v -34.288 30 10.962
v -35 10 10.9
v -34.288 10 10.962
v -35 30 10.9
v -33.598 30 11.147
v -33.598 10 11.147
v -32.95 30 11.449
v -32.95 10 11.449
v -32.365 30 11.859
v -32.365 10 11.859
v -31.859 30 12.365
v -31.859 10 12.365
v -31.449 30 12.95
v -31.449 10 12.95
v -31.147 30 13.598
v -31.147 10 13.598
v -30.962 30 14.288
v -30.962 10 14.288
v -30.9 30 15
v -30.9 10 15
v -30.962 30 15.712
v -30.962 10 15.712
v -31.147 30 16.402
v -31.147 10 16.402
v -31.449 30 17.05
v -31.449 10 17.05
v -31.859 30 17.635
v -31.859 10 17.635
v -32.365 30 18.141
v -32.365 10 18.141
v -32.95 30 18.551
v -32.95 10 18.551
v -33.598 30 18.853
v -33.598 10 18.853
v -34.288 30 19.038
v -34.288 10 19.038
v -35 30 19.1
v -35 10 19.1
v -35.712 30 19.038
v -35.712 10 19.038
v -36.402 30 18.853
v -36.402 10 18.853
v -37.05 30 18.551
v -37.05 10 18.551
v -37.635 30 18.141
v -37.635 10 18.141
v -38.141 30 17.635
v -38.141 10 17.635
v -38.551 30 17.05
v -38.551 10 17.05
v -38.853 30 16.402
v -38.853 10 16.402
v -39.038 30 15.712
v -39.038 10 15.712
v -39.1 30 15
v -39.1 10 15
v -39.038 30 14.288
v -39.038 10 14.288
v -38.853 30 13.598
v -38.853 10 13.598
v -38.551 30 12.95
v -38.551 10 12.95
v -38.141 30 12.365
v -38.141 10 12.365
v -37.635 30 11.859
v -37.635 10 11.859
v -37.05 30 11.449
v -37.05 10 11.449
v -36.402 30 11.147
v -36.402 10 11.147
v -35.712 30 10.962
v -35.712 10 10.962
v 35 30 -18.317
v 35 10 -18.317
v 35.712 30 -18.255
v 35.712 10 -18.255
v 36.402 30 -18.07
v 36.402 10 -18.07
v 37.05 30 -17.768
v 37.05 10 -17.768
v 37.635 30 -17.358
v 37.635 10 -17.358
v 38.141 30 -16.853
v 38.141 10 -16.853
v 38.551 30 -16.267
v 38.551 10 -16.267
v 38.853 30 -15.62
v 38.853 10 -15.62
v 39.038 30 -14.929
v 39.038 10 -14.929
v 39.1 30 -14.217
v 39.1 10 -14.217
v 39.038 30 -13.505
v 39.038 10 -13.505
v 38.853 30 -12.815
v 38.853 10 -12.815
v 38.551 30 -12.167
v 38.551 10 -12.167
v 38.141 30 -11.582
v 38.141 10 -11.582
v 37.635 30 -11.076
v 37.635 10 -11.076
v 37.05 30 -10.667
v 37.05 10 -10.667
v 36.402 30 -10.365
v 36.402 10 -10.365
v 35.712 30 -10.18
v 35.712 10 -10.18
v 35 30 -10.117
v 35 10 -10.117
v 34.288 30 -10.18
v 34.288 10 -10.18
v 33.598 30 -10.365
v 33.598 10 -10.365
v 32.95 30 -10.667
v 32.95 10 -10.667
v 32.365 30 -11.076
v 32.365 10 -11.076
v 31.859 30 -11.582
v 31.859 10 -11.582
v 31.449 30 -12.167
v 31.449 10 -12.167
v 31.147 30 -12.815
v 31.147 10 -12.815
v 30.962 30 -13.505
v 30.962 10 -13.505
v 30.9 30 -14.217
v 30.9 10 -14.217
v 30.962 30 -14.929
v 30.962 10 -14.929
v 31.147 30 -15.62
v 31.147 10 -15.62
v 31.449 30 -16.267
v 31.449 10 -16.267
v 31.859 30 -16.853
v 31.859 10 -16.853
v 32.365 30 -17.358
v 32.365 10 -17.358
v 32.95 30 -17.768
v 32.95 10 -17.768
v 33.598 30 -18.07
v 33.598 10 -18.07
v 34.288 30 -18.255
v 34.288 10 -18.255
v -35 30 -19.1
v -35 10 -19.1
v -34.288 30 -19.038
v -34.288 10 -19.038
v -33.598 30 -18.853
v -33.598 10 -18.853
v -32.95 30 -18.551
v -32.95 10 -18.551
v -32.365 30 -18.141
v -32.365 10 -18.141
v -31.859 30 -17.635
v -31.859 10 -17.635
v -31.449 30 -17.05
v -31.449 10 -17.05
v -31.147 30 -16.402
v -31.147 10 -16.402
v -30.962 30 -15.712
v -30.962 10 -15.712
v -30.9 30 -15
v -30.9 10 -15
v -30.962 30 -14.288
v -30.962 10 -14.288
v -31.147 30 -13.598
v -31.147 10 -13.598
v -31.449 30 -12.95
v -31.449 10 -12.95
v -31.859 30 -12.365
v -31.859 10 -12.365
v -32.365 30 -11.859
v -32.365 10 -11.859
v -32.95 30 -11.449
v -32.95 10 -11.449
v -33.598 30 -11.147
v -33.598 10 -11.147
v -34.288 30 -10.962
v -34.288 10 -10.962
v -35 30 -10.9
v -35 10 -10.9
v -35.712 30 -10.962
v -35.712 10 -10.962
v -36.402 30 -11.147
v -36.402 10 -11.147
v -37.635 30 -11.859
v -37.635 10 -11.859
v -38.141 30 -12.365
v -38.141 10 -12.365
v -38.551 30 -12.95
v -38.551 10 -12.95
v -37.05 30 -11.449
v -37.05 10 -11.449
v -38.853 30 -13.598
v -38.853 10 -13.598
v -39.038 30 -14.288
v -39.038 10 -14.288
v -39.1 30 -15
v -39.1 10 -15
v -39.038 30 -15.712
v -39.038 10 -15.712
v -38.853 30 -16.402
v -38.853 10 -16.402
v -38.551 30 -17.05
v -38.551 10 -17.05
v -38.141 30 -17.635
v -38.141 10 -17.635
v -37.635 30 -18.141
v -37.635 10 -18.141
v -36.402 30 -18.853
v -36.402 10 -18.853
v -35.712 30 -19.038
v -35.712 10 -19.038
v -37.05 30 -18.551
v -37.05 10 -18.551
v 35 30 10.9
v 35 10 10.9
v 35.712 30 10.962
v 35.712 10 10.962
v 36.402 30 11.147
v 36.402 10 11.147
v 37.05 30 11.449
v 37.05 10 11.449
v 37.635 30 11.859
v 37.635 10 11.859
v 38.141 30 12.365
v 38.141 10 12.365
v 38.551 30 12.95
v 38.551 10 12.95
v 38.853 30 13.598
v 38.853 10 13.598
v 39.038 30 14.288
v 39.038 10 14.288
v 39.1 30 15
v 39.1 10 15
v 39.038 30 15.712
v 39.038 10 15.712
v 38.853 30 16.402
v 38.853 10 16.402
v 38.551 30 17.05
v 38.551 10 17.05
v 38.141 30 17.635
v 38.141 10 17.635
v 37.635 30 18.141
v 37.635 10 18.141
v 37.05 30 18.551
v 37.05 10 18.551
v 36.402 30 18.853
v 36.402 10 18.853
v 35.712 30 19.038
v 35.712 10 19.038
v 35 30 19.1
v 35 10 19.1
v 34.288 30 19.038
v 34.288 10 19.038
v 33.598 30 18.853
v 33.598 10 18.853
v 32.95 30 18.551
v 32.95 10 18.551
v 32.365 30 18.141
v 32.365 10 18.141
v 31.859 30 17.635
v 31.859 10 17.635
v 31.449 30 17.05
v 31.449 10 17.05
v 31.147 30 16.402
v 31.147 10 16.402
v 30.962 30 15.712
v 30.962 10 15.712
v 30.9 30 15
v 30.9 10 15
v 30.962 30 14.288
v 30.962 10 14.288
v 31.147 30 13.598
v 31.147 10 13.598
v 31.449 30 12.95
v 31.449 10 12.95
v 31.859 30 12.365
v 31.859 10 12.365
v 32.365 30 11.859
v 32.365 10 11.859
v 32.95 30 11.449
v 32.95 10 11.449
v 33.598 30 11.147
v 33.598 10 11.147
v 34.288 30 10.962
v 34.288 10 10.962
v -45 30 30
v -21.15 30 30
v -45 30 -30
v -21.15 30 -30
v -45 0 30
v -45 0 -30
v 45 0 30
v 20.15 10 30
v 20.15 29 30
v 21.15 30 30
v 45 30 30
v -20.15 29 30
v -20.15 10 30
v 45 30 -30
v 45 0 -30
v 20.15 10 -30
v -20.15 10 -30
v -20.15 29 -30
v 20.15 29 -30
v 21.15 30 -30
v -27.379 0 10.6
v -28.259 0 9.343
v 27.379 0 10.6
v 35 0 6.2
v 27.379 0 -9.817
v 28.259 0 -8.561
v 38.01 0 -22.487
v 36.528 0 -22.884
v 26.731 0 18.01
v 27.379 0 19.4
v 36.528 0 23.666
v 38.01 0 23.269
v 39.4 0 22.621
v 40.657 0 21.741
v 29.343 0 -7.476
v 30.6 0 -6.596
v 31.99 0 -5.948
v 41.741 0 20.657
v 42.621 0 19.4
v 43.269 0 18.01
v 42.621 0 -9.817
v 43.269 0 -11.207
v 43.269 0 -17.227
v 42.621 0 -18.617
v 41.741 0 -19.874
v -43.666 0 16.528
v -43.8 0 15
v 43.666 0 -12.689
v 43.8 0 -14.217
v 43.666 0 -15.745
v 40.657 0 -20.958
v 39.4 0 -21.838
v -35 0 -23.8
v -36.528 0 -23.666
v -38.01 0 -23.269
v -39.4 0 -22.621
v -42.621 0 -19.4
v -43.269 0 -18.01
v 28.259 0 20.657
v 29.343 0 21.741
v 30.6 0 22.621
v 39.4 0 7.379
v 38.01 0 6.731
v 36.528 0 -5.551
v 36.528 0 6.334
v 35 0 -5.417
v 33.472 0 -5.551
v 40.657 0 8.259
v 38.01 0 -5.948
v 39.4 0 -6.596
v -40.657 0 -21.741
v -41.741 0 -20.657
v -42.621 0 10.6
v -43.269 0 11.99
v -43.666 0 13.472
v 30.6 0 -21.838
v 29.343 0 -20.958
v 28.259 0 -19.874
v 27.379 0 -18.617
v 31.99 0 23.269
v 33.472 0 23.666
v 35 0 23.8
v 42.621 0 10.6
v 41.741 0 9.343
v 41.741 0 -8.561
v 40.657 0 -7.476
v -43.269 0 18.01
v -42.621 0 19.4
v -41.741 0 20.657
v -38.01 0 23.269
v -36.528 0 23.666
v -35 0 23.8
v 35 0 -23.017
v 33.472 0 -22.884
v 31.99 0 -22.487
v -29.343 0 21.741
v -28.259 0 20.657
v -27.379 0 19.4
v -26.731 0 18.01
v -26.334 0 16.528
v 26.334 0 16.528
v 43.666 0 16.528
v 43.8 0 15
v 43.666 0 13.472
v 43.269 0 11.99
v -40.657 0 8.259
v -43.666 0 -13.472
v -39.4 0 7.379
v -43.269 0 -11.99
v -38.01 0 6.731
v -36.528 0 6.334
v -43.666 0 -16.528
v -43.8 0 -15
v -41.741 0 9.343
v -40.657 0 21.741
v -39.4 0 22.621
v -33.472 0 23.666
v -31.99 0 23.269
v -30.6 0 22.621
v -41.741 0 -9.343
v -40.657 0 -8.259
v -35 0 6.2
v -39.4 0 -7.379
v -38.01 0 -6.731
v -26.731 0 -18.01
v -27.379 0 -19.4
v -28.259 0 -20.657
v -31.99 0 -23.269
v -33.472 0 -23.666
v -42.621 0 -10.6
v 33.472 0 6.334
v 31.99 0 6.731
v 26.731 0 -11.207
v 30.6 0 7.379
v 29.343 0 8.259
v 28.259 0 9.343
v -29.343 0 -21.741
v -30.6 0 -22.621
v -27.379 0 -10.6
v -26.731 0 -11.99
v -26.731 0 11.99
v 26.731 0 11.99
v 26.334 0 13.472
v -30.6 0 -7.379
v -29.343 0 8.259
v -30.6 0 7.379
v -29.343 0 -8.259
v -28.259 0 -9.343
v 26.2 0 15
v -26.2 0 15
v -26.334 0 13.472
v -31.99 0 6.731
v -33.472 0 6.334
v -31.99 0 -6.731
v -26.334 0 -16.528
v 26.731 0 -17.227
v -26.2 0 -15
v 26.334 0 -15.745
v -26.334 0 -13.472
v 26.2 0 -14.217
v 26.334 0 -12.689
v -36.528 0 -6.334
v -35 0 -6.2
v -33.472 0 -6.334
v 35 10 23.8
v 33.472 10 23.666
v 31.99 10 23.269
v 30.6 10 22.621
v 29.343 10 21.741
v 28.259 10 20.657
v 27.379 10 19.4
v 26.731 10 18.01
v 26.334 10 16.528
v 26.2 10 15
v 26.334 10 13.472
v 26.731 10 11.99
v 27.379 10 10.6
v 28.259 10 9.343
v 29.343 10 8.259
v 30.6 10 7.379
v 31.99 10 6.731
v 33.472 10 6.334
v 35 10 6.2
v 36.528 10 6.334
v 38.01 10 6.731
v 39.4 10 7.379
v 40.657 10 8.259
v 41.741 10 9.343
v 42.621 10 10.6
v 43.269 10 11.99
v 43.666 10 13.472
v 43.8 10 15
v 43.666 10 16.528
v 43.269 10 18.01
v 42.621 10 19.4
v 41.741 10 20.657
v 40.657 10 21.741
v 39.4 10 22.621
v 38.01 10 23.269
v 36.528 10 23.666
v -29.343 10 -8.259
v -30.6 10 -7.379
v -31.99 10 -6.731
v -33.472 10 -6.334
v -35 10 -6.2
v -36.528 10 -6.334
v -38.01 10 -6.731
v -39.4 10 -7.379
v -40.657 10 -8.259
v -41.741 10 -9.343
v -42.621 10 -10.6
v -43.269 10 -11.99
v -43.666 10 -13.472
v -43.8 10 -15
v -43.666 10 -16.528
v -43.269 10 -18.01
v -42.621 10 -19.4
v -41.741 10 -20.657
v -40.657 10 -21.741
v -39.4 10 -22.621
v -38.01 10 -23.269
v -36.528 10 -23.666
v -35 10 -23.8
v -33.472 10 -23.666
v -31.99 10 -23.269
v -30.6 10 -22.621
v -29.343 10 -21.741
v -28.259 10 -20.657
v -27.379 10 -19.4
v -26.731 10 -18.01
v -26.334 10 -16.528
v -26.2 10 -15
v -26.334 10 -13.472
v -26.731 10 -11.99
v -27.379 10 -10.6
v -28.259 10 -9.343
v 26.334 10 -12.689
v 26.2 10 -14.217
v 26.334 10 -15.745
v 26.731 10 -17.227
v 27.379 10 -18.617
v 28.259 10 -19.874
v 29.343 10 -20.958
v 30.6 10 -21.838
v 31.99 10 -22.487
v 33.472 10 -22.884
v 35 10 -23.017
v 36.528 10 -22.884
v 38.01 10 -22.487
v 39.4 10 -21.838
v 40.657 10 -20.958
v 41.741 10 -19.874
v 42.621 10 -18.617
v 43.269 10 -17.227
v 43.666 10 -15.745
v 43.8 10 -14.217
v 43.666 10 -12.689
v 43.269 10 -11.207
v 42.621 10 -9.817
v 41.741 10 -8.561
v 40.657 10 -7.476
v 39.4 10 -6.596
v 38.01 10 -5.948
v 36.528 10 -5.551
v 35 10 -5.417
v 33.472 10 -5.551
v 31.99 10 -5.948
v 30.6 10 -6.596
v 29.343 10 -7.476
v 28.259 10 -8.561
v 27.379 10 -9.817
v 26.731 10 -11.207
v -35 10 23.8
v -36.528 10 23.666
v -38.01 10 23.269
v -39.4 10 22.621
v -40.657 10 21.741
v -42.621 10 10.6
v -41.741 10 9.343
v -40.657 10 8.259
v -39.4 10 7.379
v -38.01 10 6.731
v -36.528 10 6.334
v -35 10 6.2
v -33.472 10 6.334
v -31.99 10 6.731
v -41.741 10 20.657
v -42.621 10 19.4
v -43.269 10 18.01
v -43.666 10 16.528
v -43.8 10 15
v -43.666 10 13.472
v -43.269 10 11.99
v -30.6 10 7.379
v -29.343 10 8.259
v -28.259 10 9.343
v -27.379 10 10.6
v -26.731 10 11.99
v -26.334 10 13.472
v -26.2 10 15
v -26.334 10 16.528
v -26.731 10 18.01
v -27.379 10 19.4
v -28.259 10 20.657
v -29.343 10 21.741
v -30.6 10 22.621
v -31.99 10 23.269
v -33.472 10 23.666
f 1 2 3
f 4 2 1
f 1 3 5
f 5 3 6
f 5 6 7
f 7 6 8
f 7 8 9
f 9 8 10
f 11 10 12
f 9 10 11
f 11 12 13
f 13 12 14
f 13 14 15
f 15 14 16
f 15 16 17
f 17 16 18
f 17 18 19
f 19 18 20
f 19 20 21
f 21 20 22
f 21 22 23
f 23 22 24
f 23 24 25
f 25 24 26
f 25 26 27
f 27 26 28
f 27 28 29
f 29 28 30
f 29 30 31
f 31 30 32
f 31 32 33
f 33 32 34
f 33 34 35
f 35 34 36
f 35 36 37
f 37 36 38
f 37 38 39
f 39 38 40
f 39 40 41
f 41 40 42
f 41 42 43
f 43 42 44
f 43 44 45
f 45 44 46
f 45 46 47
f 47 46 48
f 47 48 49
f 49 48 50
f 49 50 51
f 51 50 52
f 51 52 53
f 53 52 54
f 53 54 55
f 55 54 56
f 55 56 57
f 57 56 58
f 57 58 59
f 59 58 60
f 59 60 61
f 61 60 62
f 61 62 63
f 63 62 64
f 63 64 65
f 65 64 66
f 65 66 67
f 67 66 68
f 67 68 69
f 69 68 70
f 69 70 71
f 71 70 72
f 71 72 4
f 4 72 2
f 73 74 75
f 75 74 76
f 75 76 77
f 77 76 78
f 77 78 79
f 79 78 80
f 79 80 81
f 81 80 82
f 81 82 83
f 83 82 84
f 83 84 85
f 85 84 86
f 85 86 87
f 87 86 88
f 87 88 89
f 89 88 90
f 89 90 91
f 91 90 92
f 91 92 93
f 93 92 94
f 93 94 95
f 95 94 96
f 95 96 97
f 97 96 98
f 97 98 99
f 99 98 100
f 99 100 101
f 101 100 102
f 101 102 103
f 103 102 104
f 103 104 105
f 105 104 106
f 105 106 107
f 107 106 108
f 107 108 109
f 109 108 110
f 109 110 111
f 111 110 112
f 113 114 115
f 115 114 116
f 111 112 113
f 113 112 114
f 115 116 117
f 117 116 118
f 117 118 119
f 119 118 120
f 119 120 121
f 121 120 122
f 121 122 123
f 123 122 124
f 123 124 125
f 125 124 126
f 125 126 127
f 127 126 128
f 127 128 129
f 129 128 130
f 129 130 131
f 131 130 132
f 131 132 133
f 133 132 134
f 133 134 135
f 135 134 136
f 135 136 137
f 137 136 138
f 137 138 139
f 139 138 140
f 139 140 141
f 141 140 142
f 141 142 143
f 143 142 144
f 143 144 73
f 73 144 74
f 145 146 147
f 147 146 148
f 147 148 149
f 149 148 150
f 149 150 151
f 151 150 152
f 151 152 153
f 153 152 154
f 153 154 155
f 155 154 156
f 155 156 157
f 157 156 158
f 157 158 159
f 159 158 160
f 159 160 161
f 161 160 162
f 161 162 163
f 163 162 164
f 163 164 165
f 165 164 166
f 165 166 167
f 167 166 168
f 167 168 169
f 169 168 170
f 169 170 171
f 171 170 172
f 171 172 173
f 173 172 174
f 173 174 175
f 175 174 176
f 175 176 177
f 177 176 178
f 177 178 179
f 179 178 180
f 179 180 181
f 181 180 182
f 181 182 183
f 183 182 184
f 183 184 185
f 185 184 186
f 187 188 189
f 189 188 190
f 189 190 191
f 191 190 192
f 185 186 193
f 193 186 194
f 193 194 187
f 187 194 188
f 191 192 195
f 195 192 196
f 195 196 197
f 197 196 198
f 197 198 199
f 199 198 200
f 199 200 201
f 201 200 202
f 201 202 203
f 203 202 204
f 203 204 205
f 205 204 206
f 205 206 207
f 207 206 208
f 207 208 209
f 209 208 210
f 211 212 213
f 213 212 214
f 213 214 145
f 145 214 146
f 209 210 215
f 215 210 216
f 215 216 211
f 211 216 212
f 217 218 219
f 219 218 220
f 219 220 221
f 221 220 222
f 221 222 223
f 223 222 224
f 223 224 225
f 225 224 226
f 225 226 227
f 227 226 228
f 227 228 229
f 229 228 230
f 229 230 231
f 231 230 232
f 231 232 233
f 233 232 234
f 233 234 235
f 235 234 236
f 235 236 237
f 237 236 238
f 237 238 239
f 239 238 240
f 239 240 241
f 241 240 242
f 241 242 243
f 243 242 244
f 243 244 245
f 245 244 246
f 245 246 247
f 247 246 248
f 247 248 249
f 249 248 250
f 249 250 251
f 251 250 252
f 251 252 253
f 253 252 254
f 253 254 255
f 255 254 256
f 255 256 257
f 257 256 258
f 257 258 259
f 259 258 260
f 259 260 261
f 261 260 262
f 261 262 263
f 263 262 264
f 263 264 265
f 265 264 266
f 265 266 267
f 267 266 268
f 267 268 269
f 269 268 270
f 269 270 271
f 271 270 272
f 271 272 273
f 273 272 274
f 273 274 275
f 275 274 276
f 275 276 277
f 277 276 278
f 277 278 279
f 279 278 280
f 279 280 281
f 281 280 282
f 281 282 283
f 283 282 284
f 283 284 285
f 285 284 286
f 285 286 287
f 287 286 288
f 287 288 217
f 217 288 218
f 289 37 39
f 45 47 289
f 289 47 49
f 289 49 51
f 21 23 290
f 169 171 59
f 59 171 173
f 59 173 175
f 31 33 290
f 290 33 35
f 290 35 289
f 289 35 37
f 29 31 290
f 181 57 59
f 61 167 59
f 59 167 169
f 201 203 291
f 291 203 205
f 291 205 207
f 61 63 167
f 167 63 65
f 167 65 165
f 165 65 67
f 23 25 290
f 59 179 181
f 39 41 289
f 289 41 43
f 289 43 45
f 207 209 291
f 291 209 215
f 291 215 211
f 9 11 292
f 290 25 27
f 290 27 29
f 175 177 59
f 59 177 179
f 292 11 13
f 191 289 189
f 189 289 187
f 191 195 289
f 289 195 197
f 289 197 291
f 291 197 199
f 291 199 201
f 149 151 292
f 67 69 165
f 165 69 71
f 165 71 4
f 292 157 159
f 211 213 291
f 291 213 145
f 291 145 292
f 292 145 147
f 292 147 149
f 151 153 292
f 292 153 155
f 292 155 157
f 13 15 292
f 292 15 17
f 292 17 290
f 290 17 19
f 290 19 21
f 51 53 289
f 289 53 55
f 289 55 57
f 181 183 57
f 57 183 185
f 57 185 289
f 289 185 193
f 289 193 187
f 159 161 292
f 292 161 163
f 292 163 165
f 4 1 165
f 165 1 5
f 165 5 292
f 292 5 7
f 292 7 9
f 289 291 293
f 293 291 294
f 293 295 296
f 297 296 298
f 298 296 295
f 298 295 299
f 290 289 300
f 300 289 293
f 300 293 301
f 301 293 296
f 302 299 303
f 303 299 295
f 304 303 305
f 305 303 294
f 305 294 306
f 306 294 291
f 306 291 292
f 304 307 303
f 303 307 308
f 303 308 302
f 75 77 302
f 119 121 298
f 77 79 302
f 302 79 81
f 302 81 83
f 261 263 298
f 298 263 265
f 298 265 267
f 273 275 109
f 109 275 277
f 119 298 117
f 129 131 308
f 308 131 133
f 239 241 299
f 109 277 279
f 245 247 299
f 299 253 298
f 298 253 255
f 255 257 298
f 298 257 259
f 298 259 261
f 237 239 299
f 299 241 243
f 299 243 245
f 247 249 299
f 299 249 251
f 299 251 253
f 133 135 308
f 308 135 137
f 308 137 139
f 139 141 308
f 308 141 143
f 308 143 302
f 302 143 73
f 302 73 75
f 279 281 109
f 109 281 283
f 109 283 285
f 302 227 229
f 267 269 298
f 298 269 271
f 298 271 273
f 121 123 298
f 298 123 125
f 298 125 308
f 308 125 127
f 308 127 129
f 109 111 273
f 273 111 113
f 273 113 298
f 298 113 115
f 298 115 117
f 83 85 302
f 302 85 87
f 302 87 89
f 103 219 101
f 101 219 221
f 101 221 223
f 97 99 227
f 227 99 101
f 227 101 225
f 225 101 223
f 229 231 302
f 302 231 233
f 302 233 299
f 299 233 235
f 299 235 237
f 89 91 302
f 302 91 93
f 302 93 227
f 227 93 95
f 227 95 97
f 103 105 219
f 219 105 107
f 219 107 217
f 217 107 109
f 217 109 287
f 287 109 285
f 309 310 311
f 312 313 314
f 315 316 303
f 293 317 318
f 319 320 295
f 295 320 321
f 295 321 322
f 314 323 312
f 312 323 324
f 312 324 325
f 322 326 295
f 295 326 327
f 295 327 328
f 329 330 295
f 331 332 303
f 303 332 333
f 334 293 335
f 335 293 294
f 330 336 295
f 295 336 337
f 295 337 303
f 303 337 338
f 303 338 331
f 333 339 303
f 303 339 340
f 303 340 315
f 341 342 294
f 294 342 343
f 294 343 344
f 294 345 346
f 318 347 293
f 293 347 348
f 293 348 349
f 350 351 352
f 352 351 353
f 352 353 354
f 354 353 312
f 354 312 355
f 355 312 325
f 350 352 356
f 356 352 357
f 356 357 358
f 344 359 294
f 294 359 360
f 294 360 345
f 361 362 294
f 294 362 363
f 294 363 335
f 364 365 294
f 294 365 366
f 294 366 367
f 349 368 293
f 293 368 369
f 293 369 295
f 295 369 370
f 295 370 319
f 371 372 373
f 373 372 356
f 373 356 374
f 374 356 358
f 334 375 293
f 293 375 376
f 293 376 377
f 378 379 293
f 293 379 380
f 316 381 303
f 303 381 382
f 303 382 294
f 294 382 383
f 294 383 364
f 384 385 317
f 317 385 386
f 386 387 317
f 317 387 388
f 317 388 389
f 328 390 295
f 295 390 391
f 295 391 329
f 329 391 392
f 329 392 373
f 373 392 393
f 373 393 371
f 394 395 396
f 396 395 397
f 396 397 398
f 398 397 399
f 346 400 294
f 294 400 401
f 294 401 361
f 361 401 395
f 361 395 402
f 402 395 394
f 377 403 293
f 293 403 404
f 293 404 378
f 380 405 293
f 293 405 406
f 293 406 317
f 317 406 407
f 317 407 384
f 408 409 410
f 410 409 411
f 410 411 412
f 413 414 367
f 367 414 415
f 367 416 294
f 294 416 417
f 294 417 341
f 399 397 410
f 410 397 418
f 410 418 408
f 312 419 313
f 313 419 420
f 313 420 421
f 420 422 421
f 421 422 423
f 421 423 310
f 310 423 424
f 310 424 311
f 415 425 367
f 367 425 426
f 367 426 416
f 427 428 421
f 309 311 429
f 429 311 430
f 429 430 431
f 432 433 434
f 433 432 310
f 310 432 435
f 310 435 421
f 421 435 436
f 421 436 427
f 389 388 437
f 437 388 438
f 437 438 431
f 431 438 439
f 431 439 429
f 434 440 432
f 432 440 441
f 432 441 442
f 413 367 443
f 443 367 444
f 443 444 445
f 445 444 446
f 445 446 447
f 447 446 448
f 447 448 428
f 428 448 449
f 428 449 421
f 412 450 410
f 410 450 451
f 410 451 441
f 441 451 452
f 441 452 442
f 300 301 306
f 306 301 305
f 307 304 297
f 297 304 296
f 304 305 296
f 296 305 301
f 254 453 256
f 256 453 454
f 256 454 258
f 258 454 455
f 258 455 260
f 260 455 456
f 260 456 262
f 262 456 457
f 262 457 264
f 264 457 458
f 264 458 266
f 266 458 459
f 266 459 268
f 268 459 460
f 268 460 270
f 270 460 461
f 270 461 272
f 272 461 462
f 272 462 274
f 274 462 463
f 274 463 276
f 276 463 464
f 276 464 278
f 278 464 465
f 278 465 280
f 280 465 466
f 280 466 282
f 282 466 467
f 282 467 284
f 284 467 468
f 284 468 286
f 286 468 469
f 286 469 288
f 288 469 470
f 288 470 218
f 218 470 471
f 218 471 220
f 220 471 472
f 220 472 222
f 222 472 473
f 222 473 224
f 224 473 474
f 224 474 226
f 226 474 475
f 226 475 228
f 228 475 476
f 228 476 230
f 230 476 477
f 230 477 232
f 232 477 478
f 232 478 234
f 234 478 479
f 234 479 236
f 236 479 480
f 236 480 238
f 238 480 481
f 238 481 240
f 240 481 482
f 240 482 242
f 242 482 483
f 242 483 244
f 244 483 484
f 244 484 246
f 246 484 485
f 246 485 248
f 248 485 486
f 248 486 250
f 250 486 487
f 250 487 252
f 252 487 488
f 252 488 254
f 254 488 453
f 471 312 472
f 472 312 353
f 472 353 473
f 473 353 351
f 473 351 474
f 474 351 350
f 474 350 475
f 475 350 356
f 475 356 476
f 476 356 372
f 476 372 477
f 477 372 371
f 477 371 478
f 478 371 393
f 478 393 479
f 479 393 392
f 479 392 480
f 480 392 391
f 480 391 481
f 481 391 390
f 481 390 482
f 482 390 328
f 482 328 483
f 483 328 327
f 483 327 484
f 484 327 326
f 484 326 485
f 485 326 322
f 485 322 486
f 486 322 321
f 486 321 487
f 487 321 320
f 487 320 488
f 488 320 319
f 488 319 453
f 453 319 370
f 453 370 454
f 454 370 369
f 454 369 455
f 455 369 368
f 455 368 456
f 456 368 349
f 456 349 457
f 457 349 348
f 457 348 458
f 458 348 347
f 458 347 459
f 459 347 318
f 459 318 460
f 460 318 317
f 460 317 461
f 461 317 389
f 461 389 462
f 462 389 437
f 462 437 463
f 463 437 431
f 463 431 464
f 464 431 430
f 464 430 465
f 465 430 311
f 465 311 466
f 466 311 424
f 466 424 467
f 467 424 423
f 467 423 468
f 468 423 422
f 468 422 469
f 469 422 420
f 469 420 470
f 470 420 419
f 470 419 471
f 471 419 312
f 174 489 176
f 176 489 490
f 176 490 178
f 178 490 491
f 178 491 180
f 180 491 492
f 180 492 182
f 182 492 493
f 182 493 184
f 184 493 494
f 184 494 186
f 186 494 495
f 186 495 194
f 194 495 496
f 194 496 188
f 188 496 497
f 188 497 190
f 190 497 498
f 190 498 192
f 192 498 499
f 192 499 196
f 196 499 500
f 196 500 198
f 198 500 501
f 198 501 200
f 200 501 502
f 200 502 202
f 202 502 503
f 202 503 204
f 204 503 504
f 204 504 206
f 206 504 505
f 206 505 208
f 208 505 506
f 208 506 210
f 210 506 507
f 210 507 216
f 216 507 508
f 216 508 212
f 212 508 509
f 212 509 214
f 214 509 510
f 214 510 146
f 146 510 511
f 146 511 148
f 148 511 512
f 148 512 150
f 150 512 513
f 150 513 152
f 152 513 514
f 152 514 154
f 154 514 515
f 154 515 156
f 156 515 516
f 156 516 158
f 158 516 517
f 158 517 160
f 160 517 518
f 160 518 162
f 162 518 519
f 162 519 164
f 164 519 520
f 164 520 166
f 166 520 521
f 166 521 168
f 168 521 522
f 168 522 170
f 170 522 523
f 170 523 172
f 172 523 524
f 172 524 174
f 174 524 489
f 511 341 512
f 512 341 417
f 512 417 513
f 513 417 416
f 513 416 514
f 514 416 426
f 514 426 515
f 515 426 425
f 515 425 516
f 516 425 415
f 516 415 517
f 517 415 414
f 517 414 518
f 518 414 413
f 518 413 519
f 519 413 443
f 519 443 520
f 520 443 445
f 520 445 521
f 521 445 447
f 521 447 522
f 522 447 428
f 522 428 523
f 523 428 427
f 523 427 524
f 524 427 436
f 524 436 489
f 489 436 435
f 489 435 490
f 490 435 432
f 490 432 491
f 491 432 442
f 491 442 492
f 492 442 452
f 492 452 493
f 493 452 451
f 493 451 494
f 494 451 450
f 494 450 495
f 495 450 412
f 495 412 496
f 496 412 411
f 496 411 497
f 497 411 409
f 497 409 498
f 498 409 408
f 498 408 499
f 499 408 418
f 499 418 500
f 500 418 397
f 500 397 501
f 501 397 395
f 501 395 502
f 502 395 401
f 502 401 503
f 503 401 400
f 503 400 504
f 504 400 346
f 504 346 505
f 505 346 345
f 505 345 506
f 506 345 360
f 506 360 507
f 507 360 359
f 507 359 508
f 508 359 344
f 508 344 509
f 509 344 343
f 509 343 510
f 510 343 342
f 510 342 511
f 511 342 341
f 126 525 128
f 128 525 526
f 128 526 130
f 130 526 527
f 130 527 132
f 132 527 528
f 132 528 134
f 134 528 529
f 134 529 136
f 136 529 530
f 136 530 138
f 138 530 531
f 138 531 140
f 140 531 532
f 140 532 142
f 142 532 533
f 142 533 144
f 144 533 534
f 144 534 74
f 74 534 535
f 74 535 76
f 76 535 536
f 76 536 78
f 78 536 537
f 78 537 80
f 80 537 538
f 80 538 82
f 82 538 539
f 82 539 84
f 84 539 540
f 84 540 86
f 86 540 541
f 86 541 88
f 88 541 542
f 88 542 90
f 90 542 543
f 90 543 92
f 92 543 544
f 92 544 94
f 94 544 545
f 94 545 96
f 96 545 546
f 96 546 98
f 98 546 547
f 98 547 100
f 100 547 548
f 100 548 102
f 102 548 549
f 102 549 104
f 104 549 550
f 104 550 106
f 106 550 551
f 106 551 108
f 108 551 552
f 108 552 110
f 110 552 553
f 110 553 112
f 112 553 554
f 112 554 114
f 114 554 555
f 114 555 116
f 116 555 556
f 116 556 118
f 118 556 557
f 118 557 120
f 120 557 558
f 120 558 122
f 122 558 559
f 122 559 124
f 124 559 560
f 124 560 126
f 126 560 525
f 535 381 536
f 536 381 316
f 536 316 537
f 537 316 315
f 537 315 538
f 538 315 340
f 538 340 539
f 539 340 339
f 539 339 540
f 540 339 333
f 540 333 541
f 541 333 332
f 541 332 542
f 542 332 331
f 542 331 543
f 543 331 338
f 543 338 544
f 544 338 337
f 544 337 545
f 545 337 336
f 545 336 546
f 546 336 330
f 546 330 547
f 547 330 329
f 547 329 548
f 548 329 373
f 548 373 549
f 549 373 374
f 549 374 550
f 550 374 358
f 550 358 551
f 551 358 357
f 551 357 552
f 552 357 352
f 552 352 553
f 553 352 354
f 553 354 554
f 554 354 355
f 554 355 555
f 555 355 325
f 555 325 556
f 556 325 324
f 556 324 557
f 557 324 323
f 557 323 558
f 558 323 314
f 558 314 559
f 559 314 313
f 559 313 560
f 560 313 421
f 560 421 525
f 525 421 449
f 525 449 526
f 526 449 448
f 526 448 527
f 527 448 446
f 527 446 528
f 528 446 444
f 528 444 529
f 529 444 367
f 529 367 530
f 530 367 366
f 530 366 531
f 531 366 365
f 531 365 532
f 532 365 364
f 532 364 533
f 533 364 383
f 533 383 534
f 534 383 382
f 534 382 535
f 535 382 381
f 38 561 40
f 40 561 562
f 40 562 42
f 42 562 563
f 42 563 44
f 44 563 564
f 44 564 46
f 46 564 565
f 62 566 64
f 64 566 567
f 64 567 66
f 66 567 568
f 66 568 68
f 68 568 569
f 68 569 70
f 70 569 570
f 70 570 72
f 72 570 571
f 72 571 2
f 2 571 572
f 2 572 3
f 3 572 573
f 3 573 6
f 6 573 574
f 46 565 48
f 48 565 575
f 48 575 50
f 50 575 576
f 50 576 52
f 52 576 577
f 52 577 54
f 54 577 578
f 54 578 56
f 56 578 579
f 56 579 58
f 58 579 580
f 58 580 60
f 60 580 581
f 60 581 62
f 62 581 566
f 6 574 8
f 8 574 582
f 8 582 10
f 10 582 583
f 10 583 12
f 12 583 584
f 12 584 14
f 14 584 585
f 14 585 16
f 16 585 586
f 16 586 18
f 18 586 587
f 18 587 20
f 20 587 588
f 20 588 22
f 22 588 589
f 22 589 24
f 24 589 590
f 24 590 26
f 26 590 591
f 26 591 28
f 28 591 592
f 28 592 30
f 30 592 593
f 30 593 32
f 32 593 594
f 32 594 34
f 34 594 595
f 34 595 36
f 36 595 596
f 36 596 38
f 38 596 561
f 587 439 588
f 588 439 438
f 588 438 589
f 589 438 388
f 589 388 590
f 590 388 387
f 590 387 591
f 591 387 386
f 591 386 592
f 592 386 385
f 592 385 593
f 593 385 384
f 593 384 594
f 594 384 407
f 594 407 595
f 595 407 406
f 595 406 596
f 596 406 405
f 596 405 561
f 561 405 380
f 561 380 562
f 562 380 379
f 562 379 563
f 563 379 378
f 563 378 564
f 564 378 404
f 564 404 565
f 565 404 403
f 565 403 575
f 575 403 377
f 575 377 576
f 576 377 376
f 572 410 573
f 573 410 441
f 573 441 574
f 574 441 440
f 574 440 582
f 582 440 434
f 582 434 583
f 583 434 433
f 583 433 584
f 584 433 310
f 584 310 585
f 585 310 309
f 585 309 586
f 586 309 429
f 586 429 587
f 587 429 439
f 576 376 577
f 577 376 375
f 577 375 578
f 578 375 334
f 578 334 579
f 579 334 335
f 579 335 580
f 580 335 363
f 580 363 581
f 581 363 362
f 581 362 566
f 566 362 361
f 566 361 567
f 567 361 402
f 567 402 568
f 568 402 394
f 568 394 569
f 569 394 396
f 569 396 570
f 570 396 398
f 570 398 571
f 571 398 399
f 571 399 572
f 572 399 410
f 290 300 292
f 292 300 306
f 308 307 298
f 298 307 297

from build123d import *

# Parameters (mm, degrees)
SKETCH1_W           = 90
SKETCH1_H           = 60
BOSS_EXTRUDE1_DEPTH = 30
SKETCH2_W           = 40.3
SKETCH2_H           = 40
CUT_EXTRUDE1_DEPTH  = 61
SKETCH3_R           = 4.1
CUT_EXTRUDE2_DEPTH  = 31
SKETCH4_R           = 8.8
CUT_EXTRUDE3_DEPTH  = 10
CHAMFER1_SIZE       = 1


with BuildPart() as part:
    # Sketch1 → Boss-Extrude1 (new body)
    with BuildSketch(Plane(origin=(0, 0, 0), x_dir=(1, 0, 0), z_dir=(0, 1, 0))):
        Rectangle(SKETCH1_W, SKETCH1_H)
    extrude(amount=BOSS_EXTRUDE1_DEPTH)

    # Sketch2 → Cut-Extrude1 (cut, through all)
    with BuildSketch(Plane.XY.offset(30)):
        with Locations((0, 30)):
            Rectangle(SKETCH2_W, SKETCH2_H)
    extrude(amount=-CUT_EXTRUDE1_DEPTH, mode=Mode.SUBTRACT)

    # Sketch3 → Cut-Extrude2 (cut, through all)
    with BuildSketch(Plane.XZ):
        with Locations((-35, 15)):
            Circle(SKETCH3_R)
        with Locations((-35, -15)):
            Circle(SKETCH3_R)
        with Locations((35, -14.217273236)):
            Circle(SKETCH3_R)
        with Locations((35, 15)):
            Circle(SKETCH3_R)
    extrude(amount=-CUT_EXTRUDE2_DEPTH, mode=Mode.SUBTRACT)

    # Sketch4 → Cut-Extrude3 (cut)
    with BuildSketch(Plane.XZ):
        with Locations((35, 15)):
            Circle(SKETCH4_R)
        with Locations((35, -14.217273236)):
            Circle(SKETCH4_R)
        with Locations((-35, 15)):
            Circle(SKETCH4_R)
        with Locations((-35, -15)):
            Circle(SKETCH4_R)
    extrude(amount=-CUT_EXTRUDE3_DEPTH, mode=Mode.SUBTRACT)

    # Chamfer1
    chamfer1_edges = [part.edges().sort_by_distance(p)[0] for p in [
        (20.15, 30, 0),
        (-20.15, 30, 0),
    ]]
    chamfer(chamfer1_edges, length=CHAMFER1_SIZE)


solid = part.part
